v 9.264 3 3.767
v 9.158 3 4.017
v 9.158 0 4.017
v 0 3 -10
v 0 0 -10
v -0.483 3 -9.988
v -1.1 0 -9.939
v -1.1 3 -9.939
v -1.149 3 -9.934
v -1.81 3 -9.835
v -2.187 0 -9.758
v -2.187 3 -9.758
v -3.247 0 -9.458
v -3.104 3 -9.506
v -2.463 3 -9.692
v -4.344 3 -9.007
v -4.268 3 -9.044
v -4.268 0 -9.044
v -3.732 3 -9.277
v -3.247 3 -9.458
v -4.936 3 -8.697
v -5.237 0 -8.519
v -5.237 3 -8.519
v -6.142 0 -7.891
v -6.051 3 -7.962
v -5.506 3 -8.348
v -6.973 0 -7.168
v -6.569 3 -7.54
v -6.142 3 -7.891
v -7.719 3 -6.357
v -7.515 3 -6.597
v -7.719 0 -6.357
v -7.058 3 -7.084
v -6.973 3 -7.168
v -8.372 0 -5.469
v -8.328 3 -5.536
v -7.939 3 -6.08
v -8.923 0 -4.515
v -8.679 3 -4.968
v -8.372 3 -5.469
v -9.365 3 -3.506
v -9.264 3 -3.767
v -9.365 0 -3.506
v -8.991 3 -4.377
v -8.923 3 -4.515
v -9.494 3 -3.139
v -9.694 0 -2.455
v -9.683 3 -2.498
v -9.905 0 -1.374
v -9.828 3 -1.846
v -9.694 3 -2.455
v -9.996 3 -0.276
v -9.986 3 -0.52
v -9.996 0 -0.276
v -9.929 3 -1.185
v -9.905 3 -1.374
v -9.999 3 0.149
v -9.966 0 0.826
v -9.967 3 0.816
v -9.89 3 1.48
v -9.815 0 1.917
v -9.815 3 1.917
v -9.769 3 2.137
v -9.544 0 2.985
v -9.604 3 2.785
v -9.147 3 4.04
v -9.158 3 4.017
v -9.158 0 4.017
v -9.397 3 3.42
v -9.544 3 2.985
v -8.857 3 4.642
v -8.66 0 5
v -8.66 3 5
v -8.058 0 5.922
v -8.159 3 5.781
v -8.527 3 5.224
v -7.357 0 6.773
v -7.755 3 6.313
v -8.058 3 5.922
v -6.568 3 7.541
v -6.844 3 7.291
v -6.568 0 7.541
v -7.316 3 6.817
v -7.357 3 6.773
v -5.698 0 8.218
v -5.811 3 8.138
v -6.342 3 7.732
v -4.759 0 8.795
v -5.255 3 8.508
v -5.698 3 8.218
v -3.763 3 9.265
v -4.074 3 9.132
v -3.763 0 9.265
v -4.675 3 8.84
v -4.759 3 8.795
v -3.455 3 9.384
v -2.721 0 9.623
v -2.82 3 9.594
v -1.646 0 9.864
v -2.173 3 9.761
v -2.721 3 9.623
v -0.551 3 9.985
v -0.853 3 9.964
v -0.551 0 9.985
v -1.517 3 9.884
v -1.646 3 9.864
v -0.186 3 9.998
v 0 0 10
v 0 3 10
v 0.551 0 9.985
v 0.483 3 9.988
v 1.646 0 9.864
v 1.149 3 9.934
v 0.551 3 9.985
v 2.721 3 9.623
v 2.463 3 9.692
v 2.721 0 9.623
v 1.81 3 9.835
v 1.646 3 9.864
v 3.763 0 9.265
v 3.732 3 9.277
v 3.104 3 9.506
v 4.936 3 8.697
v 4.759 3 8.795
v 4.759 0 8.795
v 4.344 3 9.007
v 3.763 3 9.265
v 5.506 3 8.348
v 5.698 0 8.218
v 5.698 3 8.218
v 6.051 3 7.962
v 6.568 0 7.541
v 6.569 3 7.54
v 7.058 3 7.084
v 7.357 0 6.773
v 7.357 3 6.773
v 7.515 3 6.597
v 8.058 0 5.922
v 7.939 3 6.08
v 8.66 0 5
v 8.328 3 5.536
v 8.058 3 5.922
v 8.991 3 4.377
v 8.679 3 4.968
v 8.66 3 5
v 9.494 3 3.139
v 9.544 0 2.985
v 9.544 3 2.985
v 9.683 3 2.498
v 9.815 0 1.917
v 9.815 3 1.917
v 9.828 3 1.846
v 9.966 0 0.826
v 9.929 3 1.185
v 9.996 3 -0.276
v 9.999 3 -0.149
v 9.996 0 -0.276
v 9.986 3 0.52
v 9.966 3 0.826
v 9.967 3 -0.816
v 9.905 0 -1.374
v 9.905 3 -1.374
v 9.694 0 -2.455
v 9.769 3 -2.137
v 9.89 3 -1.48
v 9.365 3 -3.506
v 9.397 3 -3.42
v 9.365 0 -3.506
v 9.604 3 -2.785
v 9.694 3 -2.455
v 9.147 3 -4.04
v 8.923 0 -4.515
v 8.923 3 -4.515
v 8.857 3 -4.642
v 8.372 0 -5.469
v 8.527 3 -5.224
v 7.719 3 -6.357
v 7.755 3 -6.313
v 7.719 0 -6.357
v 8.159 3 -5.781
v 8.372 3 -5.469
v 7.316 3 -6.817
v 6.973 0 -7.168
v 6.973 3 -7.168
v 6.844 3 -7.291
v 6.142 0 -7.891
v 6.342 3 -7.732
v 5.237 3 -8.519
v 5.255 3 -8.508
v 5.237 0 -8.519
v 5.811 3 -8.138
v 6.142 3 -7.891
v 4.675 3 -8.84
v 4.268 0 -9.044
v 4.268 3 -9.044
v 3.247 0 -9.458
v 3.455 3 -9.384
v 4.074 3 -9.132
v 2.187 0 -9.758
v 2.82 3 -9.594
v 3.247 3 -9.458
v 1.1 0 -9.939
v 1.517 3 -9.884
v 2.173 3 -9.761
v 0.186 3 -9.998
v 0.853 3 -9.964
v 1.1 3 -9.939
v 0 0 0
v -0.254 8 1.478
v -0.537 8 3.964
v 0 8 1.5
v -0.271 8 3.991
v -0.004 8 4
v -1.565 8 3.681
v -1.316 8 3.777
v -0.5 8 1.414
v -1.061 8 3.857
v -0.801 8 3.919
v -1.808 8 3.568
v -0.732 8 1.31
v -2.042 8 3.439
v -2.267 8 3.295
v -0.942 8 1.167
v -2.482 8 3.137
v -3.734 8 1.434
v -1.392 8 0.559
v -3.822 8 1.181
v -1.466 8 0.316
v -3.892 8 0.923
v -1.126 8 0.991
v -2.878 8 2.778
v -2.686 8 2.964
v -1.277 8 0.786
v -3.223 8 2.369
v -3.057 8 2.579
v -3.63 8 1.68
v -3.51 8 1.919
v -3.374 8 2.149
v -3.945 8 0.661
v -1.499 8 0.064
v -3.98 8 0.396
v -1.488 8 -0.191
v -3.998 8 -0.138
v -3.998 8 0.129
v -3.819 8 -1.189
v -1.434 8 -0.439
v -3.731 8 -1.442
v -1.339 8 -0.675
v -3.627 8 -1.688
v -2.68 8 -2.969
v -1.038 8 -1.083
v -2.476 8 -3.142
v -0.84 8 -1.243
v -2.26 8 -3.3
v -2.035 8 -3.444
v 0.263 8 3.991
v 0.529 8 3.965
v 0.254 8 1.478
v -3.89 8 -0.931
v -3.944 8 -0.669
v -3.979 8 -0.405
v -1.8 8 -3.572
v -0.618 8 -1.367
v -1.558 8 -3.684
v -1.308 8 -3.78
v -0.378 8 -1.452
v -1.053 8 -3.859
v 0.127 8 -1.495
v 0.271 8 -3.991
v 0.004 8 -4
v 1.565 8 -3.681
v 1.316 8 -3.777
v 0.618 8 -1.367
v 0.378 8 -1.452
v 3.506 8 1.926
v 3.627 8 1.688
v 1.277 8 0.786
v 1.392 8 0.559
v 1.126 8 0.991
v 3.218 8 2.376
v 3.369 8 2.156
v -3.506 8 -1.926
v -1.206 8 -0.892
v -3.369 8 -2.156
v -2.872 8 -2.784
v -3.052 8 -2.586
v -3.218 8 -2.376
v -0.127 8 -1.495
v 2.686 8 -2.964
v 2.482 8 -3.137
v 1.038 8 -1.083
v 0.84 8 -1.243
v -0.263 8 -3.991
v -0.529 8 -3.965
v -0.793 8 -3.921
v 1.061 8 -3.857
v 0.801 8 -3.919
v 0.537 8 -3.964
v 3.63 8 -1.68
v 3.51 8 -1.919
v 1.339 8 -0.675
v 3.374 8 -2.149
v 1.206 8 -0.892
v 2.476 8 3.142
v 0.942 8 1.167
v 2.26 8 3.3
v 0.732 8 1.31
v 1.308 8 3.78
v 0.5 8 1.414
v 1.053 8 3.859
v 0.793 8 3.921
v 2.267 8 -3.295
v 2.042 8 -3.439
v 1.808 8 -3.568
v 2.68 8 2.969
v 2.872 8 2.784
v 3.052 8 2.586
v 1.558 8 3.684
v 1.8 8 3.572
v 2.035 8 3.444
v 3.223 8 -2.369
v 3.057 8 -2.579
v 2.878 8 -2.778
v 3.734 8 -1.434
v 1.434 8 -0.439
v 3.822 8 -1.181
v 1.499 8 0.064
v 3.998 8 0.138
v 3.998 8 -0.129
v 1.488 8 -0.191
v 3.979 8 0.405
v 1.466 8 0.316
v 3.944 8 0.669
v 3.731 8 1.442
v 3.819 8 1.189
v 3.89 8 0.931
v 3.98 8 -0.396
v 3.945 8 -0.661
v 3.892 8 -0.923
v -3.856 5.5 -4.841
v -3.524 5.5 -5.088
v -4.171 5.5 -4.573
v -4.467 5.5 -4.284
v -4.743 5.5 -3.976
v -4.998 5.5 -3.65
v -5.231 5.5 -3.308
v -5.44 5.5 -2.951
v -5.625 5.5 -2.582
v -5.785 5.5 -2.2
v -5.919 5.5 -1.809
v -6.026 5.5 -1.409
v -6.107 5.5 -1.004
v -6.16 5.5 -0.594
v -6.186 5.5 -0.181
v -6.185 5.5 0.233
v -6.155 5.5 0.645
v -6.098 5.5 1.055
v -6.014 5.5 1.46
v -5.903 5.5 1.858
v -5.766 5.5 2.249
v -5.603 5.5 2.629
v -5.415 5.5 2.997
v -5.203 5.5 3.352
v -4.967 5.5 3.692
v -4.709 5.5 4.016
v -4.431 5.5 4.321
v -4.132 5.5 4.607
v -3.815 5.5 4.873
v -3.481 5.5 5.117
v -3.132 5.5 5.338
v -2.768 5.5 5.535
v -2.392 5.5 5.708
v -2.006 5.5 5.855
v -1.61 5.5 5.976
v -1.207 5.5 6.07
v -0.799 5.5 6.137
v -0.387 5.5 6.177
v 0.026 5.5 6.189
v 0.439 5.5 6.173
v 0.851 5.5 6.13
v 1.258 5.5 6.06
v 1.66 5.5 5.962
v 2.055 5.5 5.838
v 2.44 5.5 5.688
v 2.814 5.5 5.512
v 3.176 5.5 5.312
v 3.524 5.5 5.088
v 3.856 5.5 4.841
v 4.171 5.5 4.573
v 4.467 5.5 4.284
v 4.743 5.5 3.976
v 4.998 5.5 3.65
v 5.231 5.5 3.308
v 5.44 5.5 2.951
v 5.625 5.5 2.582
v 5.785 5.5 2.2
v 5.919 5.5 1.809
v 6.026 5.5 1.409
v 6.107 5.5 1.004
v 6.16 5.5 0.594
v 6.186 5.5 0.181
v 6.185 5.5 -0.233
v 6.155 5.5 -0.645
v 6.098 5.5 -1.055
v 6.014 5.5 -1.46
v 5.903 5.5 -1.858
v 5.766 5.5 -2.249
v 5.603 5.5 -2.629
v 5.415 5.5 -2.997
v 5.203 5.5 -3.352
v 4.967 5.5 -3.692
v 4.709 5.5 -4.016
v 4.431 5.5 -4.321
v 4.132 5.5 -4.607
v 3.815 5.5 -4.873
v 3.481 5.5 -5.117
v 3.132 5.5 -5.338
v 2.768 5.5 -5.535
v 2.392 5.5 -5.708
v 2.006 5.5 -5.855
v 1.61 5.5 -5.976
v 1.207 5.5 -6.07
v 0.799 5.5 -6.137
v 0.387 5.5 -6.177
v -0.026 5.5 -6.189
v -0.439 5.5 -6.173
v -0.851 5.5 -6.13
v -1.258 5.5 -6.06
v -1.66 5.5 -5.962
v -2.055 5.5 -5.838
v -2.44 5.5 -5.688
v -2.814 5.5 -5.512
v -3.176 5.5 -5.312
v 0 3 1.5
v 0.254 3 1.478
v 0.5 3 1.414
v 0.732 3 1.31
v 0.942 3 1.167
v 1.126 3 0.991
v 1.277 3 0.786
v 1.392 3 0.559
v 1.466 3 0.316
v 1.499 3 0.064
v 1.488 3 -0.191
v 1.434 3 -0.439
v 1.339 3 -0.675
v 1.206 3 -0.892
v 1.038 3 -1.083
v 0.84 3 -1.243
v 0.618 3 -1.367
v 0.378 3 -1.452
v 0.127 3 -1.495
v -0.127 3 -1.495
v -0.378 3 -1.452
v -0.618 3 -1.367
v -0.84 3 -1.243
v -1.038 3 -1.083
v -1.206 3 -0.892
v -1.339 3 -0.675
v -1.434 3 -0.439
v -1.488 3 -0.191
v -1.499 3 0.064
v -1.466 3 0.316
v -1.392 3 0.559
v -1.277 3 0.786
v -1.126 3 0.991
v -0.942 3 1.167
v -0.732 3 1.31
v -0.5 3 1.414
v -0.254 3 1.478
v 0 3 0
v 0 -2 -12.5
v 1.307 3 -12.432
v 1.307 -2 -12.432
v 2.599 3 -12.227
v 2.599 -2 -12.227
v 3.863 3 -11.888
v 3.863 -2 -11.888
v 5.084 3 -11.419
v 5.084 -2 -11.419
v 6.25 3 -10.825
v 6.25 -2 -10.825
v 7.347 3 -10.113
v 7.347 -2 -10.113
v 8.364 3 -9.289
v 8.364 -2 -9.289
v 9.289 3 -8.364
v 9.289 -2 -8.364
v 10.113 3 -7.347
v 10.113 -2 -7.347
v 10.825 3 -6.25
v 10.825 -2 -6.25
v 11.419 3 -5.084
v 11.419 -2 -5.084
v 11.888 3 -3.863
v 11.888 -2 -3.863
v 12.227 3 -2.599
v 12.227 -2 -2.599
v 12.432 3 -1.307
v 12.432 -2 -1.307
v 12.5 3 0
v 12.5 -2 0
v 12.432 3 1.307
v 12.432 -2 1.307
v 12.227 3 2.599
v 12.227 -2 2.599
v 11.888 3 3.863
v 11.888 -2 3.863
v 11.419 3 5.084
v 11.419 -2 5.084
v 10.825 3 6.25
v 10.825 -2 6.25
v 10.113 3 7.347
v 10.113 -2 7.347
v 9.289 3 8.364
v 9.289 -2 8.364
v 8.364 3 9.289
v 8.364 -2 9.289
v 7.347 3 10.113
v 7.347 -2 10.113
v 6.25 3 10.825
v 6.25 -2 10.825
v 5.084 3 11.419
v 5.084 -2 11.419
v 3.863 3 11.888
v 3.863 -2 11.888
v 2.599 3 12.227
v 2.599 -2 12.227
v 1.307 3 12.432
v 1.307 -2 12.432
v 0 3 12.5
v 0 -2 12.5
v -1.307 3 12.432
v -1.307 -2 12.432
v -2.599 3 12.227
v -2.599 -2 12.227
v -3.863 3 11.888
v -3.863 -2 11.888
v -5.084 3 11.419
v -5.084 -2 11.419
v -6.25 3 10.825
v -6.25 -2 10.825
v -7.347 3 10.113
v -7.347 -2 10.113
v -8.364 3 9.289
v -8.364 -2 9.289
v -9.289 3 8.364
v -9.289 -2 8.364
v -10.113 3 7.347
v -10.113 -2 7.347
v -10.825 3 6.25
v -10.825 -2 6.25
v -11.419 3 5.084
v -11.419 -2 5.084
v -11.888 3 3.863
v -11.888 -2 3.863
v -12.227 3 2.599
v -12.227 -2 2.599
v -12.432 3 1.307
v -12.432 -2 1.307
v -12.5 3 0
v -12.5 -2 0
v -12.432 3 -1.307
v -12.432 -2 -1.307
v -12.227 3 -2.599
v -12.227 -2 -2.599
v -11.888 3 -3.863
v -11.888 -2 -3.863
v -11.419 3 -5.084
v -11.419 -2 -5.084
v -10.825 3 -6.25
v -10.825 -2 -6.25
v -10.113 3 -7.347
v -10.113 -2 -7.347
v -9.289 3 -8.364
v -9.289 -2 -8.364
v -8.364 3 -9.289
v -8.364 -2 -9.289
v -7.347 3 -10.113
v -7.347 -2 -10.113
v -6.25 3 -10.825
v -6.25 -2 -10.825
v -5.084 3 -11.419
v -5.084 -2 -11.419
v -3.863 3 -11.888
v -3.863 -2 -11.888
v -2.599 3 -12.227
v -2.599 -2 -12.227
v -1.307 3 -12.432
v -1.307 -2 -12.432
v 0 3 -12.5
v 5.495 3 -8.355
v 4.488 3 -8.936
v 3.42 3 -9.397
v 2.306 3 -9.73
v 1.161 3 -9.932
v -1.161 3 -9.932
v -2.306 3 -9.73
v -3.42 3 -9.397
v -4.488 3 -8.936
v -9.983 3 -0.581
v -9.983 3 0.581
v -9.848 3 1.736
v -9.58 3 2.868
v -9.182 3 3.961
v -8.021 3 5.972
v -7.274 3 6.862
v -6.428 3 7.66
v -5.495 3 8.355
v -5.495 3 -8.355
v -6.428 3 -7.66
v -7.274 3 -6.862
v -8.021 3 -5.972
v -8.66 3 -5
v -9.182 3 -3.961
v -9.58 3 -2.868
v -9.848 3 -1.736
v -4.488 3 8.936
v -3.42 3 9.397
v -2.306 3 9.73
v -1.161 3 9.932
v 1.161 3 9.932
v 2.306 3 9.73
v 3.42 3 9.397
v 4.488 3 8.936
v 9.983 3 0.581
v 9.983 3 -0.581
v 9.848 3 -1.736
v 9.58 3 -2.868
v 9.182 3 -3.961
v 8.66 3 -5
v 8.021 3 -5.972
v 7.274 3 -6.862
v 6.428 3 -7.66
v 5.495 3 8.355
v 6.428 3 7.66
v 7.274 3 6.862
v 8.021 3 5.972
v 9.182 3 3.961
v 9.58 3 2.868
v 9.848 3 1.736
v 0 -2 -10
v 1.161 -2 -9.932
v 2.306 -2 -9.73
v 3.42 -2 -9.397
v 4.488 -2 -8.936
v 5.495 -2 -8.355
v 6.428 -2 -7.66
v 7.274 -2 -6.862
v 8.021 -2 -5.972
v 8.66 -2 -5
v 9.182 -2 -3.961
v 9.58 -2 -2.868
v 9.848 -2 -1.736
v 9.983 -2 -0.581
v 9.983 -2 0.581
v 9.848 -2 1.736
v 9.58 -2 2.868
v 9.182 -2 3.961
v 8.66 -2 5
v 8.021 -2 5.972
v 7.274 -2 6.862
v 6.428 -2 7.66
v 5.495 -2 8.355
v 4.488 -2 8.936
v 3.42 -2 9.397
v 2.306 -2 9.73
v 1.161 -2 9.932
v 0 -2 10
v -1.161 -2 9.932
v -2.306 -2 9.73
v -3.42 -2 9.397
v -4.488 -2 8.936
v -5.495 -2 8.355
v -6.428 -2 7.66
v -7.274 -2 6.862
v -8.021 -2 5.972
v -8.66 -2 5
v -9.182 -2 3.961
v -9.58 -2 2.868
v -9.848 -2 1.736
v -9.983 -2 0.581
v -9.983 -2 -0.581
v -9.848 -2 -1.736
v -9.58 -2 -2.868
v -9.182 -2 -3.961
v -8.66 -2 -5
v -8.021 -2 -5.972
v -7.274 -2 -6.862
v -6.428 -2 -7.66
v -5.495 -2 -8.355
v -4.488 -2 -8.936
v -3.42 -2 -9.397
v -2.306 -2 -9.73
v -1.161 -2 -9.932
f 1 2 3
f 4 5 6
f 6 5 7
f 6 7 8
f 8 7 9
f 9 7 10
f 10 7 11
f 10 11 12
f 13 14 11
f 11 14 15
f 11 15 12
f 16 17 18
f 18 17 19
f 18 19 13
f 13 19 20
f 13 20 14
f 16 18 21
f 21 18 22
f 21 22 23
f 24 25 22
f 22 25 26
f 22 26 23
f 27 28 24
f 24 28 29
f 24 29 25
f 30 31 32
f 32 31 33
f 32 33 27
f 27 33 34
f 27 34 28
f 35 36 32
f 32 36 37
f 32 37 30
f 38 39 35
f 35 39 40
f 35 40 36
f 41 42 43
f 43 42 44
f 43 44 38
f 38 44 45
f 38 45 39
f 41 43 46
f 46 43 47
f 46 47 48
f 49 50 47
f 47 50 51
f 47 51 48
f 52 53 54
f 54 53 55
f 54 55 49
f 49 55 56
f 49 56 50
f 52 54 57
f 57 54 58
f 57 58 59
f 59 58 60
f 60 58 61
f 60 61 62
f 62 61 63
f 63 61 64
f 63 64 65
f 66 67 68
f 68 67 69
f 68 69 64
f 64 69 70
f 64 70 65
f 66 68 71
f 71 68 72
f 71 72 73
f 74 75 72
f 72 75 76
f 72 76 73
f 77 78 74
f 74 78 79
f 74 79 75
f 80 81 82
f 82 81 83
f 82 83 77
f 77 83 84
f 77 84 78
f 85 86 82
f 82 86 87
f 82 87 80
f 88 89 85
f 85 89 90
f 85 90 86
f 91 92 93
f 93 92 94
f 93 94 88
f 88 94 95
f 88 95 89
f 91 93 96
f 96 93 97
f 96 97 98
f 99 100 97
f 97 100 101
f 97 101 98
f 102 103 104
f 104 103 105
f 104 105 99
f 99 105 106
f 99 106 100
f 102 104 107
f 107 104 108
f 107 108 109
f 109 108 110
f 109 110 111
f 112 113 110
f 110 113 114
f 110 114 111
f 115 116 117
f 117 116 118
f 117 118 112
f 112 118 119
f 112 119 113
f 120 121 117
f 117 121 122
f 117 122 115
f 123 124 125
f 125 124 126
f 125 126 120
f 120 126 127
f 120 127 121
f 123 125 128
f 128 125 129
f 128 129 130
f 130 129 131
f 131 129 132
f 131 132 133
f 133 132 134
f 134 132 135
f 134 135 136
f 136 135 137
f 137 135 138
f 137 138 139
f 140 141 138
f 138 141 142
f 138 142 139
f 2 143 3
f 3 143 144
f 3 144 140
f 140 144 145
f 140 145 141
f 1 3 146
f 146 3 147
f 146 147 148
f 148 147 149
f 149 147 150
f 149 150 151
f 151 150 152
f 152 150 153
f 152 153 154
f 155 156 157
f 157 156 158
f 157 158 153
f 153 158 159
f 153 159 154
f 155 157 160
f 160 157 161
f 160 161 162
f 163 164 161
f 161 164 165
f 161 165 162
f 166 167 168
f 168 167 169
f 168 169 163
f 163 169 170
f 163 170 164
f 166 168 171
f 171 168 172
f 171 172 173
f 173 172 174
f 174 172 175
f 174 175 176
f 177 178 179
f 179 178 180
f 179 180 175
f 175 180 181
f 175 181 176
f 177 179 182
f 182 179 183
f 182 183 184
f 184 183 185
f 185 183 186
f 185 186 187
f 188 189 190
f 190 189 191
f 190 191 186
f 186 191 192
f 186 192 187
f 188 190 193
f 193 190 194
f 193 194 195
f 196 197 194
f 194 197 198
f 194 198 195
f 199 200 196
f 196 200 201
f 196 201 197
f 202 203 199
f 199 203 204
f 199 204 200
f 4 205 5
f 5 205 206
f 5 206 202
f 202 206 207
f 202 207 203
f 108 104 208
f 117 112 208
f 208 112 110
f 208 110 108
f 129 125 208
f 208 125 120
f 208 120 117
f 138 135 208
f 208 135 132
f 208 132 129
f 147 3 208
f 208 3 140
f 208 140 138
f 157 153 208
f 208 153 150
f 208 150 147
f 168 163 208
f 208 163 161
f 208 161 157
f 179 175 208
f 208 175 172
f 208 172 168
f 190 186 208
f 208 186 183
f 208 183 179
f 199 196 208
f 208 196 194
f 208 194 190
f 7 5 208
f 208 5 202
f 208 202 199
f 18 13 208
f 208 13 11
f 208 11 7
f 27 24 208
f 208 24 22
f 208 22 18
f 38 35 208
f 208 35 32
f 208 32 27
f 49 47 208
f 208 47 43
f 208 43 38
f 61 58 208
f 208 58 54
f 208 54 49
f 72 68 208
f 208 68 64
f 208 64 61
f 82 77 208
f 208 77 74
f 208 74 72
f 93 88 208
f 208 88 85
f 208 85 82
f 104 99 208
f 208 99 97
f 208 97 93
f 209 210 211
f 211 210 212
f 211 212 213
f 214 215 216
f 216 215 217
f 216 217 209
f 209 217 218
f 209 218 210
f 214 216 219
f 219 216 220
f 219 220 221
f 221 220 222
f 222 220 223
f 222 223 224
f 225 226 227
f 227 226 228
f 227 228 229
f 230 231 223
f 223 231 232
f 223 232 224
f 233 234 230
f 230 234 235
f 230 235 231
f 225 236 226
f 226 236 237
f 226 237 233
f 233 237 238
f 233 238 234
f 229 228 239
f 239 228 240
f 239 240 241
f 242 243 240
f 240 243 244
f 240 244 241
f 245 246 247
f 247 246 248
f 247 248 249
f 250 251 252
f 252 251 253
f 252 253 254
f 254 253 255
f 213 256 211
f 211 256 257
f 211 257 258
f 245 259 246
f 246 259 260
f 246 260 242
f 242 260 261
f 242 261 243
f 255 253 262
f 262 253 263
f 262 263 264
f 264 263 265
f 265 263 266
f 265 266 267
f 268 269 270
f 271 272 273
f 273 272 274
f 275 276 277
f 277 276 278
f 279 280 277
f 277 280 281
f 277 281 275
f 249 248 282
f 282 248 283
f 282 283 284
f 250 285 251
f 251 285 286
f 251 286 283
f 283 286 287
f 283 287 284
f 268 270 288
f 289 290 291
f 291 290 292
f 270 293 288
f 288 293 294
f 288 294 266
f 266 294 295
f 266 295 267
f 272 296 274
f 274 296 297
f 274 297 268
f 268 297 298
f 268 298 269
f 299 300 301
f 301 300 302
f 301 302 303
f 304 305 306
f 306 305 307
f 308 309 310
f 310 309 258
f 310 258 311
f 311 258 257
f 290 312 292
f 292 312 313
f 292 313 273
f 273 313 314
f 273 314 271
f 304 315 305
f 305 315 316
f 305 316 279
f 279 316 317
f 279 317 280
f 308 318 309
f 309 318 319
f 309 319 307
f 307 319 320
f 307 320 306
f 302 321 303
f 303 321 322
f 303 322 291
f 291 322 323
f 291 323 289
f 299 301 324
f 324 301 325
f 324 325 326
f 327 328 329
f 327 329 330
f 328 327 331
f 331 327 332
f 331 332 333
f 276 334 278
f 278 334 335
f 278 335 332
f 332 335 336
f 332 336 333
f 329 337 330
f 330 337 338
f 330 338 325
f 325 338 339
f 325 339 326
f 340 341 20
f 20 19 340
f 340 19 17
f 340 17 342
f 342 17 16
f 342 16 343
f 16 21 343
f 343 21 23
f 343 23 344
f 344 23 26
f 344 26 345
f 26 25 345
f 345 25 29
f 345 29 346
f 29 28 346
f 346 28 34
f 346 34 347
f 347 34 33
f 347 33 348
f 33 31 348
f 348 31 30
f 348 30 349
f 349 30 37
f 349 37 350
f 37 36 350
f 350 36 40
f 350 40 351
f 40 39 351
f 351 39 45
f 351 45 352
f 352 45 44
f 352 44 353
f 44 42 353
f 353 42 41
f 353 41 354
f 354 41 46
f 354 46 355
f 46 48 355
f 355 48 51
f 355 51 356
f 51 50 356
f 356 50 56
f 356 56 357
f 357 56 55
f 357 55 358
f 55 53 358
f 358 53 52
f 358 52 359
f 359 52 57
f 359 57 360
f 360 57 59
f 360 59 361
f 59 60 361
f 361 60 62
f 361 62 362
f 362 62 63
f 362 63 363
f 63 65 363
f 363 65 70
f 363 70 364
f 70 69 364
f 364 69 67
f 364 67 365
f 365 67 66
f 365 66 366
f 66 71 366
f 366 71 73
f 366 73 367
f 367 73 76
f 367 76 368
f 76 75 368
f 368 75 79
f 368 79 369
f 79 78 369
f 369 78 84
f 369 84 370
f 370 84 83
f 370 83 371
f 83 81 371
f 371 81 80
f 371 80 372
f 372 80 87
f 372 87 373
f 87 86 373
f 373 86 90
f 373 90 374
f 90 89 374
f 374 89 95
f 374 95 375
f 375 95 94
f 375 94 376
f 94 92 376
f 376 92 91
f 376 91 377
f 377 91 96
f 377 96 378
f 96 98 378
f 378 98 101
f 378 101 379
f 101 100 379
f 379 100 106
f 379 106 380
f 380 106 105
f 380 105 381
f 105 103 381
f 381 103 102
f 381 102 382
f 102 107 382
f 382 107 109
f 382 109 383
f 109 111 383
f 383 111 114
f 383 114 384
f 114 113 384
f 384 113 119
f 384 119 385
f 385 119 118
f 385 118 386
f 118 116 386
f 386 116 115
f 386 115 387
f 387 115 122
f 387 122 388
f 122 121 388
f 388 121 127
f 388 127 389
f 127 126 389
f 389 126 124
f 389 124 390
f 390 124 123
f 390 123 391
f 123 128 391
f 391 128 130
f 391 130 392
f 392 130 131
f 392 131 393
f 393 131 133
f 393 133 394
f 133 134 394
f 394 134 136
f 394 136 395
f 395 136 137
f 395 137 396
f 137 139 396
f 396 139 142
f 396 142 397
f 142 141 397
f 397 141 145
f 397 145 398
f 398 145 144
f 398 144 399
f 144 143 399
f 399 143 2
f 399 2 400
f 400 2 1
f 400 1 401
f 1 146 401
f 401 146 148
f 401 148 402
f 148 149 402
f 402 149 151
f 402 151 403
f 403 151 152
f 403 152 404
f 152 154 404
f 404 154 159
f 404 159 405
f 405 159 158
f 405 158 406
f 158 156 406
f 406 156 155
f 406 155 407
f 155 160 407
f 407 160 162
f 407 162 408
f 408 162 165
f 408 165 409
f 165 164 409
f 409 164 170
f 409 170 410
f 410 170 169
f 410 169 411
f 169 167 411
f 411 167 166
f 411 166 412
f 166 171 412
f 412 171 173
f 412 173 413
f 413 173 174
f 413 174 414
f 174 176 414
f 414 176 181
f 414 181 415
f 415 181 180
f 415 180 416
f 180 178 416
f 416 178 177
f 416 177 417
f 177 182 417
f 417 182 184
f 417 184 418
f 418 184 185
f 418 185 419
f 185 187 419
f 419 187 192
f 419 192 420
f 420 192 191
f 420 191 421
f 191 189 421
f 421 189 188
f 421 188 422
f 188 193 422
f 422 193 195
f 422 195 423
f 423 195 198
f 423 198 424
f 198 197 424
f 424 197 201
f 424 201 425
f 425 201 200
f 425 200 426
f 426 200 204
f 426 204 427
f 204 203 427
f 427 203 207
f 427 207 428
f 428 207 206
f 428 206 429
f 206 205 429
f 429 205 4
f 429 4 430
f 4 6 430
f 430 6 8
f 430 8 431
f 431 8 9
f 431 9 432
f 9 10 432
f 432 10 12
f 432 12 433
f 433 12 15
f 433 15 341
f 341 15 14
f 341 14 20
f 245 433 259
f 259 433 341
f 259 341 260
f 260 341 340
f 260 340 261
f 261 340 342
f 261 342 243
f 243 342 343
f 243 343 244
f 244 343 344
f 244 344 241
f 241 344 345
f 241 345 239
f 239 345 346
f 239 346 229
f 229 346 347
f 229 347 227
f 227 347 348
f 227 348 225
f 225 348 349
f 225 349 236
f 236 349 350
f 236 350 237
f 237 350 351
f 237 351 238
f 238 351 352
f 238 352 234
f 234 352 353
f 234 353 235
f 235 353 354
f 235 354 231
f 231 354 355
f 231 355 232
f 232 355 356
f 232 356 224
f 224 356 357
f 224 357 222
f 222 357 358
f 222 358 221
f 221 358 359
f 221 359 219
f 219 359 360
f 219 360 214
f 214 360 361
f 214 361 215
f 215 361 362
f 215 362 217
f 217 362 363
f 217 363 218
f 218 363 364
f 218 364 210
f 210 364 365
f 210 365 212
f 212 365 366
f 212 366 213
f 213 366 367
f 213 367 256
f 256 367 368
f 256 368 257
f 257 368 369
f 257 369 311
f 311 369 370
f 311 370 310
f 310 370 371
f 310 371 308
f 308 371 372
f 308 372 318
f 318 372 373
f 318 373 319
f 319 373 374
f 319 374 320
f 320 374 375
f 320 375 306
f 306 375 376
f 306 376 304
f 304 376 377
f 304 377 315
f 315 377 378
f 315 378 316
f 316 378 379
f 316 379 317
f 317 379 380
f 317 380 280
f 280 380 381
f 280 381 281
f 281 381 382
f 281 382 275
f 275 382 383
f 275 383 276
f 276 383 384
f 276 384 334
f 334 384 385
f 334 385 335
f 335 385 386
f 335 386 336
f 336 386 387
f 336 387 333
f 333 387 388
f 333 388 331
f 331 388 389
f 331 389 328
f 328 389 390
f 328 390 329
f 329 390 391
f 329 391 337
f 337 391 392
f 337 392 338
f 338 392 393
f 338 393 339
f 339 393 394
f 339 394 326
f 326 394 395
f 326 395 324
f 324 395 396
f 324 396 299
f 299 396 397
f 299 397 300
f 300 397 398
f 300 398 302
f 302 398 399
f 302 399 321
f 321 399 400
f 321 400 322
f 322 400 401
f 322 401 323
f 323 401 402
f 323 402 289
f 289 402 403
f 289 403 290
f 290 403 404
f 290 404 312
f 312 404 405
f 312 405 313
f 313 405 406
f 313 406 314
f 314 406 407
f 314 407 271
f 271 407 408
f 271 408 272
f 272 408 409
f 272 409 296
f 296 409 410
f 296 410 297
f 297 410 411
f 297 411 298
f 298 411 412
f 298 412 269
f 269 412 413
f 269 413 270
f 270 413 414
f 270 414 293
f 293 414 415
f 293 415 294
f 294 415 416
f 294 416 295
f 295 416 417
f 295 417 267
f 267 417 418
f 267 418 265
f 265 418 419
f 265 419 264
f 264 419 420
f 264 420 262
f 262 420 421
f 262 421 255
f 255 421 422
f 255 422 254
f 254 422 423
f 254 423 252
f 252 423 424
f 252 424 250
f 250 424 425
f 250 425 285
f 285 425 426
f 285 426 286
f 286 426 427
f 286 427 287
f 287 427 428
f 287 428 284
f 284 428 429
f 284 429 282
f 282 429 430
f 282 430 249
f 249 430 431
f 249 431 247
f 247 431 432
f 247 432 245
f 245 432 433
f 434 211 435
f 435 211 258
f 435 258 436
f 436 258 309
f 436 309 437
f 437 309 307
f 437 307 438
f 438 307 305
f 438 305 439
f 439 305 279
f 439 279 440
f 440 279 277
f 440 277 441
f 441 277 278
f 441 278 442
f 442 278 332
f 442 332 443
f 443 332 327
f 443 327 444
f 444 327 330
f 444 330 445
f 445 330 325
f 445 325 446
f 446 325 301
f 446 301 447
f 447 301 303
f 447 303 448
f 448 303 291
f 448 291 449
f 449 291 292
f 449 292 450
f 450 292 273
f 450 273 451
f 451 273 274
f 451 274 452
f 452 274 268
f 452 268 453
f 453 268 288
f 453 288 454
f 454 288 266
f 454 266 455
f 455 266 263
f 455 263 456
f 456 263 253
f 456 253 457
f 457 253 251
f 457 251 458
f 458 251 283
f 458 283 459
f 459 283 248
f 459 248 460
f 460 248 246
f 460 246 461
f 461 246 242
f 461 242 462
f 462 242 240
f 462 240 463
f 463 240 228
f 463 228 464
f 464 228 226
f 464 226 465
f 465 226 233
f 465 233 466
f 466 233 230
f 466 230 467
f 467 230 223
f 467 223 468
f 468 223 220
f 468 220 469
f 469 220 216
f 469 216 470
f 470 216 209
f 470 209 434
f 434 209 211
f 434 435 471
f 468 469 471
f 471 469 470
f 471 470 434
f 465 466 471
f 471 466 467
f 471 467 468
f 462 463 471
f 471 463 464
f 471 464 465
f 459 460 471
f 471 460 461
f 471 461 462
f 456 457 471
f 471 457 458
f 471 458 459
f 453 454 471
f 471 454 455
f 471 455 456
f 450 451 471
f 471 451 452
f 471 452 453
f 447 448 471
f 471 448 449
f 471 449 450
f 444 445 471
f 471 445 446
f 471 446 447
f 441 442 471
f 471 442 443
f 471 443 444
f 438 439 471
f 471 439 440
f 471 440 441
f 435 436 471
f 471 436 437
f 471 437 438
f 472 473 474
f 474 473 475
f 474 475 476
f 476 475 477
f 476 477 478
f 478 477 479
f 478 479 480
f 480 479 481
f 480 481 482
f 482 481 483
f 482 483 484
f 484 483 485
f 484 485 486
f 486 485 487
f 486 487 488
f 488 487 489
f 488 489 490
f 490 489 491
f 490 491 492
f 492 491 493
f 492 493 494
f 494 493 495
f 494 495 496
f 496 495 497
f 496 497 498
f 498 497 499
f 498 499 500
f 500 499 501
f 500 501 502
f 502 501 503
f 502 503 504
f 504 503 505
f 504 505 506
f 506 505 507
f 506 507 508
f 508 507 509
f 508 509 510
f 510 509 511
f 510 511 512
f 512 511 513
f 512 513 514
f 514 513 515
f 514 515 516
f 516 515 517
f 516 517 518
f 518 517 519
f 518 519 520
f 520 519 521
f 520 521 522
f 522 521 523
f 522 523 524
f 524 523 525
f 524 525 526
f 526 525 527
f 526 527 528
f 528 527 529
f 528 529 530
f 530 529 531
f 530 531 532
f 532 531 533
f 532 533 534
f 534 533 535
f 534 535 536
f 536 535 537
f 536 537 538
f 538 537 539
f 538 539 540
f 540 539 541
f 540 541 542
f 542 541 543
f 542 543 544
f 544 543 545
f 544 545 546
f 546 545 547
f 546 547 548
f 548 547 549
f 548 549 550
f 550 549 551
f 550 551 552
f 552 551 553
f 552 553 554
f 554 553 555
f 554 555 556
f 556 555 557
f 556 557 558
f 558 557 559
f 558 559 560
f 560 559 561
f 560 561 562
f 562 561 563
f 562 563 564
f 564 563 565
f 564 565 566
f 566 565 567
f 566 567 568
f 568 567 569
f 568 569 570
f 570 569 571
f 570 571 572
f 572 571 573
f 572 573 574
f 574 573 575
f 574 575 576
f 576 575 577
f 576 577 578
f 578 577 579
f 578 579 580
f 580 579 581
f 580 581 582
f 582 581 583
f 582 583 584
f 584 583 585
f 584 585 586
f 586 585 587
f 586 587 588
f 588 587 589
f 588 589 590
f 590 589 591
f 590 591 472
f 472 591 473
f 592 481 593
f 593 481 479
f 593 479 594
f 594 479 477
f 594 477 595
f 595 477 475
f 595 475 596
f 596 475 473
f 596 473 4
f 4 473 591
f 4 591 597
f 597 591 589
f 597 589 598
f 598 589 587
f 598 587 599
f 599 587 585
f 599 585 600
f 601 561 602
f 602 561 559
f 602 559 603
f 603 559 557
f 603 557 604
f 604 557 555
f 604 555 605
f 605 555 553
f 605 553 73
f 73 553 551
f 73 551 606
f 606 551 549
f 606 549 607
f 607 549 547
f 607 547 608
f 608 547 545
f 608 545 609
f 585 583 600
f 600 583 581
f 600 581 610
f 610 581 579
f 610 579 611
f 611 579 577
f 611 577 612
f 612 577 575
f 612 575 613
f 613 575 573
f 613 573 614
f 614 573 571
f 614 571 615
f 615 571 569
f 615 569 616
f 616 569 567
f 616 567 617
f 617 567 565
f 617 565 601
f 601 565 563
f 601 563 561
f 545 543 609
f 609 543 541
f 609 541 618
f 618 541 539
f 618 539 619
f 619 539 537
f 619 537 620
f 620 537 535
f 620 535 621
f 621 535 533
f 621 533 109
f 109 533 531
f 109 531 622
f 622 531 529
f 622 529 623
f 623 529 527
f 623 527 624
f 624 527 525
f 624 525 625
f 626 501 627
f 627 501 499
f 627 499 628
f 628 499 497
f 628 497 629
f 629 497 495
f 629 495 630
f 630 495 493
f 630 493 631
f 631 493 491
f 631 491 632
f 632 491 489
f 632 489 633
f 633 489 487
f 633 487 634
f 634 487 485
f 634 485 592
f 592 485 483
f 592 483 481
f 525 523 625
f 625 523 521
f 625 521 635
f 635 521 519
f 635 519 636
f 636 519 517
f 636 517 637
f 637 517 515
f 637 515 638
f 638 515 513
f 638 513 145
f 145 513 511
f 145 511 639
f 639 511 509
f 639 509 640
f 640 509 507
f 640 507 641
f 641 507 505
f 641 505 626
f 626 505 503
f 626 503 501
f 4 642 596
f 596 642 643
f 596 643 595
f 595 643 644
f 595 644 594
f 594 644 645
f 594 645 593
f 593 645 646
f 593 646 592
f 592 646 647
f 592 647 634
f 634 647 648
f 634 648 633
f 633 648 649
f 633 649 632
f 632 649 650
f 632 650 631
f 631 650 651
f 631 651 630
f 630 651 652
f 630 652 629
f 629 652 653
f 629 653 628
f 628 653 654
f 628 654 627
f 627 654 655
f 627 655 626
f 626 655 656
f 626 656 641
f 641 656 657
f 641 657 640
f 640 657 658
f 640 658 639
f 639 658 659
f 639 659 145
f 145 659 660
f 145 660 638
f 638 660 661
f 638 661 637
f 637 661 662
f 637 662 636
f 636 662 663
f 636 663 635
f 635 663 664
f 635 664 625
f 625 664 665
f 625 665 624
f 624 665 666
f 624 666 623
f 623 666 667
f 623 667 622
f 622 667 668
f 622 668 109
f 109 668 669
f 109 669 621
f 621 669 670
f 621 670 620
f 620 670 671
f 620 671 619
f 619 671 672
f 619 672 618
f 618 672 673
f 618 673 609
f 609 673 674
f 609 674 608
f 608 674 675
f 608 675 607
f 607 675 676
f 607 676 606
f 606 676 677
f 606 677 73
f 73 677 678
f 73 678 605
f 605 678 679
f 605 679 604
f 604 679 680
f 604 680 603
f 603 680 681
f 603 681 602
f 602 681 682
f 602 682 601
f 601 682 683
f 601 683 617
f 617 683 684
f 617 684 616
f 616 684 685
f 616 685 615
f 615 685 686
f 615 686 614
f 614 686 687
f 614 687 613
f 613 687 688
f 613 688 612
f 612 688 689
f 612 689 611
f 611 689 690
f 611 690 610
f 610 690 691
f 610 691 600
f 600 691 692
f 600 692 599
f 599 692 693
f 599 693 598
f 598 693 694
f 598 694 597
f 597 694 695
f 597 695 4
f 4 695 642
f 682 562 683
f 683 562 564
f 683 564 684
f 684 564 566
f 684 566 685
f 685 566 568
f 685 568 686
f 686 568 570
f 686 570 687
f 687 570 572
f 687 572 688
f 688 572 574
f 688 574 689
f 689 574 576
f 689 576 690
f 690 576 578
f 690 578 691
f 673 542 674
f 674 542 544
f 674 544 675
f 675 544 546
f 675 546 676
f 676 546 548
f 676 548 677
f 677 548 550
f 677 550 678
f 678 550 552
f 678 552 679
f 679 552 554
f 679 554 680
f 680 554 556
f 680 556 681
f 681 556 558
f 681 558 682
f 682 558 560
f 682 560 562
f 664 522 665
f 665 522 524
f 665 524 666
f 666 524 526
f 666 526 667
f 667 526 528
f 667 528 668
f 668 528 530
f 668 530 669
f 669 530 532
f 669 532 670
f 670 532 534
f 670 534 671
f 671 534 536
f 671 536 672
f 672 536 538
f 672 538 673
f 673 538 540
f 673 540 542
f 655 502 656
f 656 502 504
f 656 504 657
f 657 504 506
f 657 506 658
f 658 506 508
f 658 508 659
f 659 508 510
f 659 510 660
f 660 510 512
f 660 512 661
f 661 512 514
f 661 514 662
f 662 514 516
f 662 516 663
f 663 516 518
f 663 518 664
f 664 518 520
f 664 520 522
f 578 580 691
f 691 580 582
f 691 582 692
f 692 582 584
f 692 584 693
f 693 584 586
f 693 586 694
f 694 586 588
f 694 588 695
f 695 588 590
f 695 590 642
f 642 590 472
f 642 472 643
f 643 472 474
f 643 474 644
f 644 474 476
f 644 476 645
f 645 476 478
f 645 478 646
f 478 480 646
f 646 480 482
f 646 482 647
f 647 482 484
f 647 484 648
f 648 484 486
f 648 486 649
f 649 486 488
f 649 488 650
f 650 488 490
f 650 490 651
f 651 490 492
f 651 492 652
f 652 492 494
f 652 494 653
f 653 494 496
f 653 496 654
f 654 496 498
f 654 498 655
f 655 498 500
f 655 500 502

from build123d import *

# Parameters (mm, degrees)
SKETCH2_R                = 10
BOSS_EXTRUDE1_DEPTH      = 3
SKETCH4_R                = 1.5
CUT_EXTRUDE1_DEPTH       = 5
BOSS_EXTRUDE2_DEPTH      = 2
BOSS_EXTRUDE2_DEPTH_BACK = 3
SKETCH6_R                = 12.5
SKETCH6_R_2              = 10


with BuildPart() as part:
    # Sketch2 → Boss-Extrude1 (new body)
    with BuildSketch(Plane(origin=(0, 0, 0), x_dir=(1, 0, 0), z_dir=(0, 1, 0))):
        with Locations(Location((0, 0, 0), (0, 0, 270))):
            Circle(SKETCH2_R)
    extrude(amount=BOSS_EXTRUDE1_DEPTH)

    # Loft1: read off the stored shape, not the designer's step
    # Loft1: loft between two sections, ruled curve by curve
    loft1_from = [
        Edge.make_bspline([(-3.890065626, 8, -0.931337439), (-2.027390748, 8, -8.711468691), (5.752740504, 8, -6.848793813), (3.890065626, 8, 0.931337439), (2.027390748, 8, 8.711468691), (-5.752740504, 8, 6.848793813), (-3.890065626, 8, -0.931337439)], [0, 0, 0, 0, 0.5, 0.5, 0.5, 1, 1, 1, 1], 3, [1, 0.333333333, 0.333333333, 1, 0.333333333, 0.333333333, 1]),
    ]
    loft1_to = [
        Edge.make_bspline([(-2.462547893, 3, -9.692051273), (16.921554653, 3, -14.617147059), (21.846650439, 3, 4.766955487), (2.462547893, 3, 9.692051273), (-16.921554653, 3, 14.617147059), (-21.846650439, 3, -4.766955487), (-2.462547893, 3, -9.692051273)], [0, 0, 0, 0, 0.5, 0.5, 0.5, 1, 1, 1, 1], 3, [1, 0.333333333, 0.333333333, 1, 0.333333333, 0.333333333, 1]),
    ]
    loft1 = Solid(Shell([*[Face.make_surface_from_curves(loft1_from[k], loft1_to[k]) for k in range(1)], Face(Wire(loft1_from)), Face(Wire(loft1_to))]))
    add(loft1)

    # Sketch4 → Cut-Extrude1 (cut)
    with BuildSketch(Plane(origin=(0, 8, 0), x_dir=(1, 0, 0), z_dir=(0, 1, 0))):
        with Locations(Location((0, 0, 0), (0, 0, 270))):
            Circle(SKETCH4_R)
    extrude(amount=-CUT_EXTRUDE1_DEPTH, mode=Mode.SUBTRACT)


with BuildPart() as body_2:
    # Sketch6 → Boss-Extrude2 (new, two sides: drawn at the far end of the back side and taken through both)
    with BuildSketch(Plane.XZ.offset(-BOSS_EXTRUDE2_DEPTH_BACK)):
        with Locations(Location((0, 0, 0), (0, 0, 270))):
            Circle(SKETCH6_R)
        with Locations(Location((0, 0, 0), (0, 0, 270))):
            Circle(SKETCH6_R_2, mode=Mode.SUBTRACT)
    extrude(amount=BOSS_EXTRUDE2_DEPTH + BOSS_EXTRUDE2_DEPTH_BACK)


solid = Compound([part.part, body_2.part])
